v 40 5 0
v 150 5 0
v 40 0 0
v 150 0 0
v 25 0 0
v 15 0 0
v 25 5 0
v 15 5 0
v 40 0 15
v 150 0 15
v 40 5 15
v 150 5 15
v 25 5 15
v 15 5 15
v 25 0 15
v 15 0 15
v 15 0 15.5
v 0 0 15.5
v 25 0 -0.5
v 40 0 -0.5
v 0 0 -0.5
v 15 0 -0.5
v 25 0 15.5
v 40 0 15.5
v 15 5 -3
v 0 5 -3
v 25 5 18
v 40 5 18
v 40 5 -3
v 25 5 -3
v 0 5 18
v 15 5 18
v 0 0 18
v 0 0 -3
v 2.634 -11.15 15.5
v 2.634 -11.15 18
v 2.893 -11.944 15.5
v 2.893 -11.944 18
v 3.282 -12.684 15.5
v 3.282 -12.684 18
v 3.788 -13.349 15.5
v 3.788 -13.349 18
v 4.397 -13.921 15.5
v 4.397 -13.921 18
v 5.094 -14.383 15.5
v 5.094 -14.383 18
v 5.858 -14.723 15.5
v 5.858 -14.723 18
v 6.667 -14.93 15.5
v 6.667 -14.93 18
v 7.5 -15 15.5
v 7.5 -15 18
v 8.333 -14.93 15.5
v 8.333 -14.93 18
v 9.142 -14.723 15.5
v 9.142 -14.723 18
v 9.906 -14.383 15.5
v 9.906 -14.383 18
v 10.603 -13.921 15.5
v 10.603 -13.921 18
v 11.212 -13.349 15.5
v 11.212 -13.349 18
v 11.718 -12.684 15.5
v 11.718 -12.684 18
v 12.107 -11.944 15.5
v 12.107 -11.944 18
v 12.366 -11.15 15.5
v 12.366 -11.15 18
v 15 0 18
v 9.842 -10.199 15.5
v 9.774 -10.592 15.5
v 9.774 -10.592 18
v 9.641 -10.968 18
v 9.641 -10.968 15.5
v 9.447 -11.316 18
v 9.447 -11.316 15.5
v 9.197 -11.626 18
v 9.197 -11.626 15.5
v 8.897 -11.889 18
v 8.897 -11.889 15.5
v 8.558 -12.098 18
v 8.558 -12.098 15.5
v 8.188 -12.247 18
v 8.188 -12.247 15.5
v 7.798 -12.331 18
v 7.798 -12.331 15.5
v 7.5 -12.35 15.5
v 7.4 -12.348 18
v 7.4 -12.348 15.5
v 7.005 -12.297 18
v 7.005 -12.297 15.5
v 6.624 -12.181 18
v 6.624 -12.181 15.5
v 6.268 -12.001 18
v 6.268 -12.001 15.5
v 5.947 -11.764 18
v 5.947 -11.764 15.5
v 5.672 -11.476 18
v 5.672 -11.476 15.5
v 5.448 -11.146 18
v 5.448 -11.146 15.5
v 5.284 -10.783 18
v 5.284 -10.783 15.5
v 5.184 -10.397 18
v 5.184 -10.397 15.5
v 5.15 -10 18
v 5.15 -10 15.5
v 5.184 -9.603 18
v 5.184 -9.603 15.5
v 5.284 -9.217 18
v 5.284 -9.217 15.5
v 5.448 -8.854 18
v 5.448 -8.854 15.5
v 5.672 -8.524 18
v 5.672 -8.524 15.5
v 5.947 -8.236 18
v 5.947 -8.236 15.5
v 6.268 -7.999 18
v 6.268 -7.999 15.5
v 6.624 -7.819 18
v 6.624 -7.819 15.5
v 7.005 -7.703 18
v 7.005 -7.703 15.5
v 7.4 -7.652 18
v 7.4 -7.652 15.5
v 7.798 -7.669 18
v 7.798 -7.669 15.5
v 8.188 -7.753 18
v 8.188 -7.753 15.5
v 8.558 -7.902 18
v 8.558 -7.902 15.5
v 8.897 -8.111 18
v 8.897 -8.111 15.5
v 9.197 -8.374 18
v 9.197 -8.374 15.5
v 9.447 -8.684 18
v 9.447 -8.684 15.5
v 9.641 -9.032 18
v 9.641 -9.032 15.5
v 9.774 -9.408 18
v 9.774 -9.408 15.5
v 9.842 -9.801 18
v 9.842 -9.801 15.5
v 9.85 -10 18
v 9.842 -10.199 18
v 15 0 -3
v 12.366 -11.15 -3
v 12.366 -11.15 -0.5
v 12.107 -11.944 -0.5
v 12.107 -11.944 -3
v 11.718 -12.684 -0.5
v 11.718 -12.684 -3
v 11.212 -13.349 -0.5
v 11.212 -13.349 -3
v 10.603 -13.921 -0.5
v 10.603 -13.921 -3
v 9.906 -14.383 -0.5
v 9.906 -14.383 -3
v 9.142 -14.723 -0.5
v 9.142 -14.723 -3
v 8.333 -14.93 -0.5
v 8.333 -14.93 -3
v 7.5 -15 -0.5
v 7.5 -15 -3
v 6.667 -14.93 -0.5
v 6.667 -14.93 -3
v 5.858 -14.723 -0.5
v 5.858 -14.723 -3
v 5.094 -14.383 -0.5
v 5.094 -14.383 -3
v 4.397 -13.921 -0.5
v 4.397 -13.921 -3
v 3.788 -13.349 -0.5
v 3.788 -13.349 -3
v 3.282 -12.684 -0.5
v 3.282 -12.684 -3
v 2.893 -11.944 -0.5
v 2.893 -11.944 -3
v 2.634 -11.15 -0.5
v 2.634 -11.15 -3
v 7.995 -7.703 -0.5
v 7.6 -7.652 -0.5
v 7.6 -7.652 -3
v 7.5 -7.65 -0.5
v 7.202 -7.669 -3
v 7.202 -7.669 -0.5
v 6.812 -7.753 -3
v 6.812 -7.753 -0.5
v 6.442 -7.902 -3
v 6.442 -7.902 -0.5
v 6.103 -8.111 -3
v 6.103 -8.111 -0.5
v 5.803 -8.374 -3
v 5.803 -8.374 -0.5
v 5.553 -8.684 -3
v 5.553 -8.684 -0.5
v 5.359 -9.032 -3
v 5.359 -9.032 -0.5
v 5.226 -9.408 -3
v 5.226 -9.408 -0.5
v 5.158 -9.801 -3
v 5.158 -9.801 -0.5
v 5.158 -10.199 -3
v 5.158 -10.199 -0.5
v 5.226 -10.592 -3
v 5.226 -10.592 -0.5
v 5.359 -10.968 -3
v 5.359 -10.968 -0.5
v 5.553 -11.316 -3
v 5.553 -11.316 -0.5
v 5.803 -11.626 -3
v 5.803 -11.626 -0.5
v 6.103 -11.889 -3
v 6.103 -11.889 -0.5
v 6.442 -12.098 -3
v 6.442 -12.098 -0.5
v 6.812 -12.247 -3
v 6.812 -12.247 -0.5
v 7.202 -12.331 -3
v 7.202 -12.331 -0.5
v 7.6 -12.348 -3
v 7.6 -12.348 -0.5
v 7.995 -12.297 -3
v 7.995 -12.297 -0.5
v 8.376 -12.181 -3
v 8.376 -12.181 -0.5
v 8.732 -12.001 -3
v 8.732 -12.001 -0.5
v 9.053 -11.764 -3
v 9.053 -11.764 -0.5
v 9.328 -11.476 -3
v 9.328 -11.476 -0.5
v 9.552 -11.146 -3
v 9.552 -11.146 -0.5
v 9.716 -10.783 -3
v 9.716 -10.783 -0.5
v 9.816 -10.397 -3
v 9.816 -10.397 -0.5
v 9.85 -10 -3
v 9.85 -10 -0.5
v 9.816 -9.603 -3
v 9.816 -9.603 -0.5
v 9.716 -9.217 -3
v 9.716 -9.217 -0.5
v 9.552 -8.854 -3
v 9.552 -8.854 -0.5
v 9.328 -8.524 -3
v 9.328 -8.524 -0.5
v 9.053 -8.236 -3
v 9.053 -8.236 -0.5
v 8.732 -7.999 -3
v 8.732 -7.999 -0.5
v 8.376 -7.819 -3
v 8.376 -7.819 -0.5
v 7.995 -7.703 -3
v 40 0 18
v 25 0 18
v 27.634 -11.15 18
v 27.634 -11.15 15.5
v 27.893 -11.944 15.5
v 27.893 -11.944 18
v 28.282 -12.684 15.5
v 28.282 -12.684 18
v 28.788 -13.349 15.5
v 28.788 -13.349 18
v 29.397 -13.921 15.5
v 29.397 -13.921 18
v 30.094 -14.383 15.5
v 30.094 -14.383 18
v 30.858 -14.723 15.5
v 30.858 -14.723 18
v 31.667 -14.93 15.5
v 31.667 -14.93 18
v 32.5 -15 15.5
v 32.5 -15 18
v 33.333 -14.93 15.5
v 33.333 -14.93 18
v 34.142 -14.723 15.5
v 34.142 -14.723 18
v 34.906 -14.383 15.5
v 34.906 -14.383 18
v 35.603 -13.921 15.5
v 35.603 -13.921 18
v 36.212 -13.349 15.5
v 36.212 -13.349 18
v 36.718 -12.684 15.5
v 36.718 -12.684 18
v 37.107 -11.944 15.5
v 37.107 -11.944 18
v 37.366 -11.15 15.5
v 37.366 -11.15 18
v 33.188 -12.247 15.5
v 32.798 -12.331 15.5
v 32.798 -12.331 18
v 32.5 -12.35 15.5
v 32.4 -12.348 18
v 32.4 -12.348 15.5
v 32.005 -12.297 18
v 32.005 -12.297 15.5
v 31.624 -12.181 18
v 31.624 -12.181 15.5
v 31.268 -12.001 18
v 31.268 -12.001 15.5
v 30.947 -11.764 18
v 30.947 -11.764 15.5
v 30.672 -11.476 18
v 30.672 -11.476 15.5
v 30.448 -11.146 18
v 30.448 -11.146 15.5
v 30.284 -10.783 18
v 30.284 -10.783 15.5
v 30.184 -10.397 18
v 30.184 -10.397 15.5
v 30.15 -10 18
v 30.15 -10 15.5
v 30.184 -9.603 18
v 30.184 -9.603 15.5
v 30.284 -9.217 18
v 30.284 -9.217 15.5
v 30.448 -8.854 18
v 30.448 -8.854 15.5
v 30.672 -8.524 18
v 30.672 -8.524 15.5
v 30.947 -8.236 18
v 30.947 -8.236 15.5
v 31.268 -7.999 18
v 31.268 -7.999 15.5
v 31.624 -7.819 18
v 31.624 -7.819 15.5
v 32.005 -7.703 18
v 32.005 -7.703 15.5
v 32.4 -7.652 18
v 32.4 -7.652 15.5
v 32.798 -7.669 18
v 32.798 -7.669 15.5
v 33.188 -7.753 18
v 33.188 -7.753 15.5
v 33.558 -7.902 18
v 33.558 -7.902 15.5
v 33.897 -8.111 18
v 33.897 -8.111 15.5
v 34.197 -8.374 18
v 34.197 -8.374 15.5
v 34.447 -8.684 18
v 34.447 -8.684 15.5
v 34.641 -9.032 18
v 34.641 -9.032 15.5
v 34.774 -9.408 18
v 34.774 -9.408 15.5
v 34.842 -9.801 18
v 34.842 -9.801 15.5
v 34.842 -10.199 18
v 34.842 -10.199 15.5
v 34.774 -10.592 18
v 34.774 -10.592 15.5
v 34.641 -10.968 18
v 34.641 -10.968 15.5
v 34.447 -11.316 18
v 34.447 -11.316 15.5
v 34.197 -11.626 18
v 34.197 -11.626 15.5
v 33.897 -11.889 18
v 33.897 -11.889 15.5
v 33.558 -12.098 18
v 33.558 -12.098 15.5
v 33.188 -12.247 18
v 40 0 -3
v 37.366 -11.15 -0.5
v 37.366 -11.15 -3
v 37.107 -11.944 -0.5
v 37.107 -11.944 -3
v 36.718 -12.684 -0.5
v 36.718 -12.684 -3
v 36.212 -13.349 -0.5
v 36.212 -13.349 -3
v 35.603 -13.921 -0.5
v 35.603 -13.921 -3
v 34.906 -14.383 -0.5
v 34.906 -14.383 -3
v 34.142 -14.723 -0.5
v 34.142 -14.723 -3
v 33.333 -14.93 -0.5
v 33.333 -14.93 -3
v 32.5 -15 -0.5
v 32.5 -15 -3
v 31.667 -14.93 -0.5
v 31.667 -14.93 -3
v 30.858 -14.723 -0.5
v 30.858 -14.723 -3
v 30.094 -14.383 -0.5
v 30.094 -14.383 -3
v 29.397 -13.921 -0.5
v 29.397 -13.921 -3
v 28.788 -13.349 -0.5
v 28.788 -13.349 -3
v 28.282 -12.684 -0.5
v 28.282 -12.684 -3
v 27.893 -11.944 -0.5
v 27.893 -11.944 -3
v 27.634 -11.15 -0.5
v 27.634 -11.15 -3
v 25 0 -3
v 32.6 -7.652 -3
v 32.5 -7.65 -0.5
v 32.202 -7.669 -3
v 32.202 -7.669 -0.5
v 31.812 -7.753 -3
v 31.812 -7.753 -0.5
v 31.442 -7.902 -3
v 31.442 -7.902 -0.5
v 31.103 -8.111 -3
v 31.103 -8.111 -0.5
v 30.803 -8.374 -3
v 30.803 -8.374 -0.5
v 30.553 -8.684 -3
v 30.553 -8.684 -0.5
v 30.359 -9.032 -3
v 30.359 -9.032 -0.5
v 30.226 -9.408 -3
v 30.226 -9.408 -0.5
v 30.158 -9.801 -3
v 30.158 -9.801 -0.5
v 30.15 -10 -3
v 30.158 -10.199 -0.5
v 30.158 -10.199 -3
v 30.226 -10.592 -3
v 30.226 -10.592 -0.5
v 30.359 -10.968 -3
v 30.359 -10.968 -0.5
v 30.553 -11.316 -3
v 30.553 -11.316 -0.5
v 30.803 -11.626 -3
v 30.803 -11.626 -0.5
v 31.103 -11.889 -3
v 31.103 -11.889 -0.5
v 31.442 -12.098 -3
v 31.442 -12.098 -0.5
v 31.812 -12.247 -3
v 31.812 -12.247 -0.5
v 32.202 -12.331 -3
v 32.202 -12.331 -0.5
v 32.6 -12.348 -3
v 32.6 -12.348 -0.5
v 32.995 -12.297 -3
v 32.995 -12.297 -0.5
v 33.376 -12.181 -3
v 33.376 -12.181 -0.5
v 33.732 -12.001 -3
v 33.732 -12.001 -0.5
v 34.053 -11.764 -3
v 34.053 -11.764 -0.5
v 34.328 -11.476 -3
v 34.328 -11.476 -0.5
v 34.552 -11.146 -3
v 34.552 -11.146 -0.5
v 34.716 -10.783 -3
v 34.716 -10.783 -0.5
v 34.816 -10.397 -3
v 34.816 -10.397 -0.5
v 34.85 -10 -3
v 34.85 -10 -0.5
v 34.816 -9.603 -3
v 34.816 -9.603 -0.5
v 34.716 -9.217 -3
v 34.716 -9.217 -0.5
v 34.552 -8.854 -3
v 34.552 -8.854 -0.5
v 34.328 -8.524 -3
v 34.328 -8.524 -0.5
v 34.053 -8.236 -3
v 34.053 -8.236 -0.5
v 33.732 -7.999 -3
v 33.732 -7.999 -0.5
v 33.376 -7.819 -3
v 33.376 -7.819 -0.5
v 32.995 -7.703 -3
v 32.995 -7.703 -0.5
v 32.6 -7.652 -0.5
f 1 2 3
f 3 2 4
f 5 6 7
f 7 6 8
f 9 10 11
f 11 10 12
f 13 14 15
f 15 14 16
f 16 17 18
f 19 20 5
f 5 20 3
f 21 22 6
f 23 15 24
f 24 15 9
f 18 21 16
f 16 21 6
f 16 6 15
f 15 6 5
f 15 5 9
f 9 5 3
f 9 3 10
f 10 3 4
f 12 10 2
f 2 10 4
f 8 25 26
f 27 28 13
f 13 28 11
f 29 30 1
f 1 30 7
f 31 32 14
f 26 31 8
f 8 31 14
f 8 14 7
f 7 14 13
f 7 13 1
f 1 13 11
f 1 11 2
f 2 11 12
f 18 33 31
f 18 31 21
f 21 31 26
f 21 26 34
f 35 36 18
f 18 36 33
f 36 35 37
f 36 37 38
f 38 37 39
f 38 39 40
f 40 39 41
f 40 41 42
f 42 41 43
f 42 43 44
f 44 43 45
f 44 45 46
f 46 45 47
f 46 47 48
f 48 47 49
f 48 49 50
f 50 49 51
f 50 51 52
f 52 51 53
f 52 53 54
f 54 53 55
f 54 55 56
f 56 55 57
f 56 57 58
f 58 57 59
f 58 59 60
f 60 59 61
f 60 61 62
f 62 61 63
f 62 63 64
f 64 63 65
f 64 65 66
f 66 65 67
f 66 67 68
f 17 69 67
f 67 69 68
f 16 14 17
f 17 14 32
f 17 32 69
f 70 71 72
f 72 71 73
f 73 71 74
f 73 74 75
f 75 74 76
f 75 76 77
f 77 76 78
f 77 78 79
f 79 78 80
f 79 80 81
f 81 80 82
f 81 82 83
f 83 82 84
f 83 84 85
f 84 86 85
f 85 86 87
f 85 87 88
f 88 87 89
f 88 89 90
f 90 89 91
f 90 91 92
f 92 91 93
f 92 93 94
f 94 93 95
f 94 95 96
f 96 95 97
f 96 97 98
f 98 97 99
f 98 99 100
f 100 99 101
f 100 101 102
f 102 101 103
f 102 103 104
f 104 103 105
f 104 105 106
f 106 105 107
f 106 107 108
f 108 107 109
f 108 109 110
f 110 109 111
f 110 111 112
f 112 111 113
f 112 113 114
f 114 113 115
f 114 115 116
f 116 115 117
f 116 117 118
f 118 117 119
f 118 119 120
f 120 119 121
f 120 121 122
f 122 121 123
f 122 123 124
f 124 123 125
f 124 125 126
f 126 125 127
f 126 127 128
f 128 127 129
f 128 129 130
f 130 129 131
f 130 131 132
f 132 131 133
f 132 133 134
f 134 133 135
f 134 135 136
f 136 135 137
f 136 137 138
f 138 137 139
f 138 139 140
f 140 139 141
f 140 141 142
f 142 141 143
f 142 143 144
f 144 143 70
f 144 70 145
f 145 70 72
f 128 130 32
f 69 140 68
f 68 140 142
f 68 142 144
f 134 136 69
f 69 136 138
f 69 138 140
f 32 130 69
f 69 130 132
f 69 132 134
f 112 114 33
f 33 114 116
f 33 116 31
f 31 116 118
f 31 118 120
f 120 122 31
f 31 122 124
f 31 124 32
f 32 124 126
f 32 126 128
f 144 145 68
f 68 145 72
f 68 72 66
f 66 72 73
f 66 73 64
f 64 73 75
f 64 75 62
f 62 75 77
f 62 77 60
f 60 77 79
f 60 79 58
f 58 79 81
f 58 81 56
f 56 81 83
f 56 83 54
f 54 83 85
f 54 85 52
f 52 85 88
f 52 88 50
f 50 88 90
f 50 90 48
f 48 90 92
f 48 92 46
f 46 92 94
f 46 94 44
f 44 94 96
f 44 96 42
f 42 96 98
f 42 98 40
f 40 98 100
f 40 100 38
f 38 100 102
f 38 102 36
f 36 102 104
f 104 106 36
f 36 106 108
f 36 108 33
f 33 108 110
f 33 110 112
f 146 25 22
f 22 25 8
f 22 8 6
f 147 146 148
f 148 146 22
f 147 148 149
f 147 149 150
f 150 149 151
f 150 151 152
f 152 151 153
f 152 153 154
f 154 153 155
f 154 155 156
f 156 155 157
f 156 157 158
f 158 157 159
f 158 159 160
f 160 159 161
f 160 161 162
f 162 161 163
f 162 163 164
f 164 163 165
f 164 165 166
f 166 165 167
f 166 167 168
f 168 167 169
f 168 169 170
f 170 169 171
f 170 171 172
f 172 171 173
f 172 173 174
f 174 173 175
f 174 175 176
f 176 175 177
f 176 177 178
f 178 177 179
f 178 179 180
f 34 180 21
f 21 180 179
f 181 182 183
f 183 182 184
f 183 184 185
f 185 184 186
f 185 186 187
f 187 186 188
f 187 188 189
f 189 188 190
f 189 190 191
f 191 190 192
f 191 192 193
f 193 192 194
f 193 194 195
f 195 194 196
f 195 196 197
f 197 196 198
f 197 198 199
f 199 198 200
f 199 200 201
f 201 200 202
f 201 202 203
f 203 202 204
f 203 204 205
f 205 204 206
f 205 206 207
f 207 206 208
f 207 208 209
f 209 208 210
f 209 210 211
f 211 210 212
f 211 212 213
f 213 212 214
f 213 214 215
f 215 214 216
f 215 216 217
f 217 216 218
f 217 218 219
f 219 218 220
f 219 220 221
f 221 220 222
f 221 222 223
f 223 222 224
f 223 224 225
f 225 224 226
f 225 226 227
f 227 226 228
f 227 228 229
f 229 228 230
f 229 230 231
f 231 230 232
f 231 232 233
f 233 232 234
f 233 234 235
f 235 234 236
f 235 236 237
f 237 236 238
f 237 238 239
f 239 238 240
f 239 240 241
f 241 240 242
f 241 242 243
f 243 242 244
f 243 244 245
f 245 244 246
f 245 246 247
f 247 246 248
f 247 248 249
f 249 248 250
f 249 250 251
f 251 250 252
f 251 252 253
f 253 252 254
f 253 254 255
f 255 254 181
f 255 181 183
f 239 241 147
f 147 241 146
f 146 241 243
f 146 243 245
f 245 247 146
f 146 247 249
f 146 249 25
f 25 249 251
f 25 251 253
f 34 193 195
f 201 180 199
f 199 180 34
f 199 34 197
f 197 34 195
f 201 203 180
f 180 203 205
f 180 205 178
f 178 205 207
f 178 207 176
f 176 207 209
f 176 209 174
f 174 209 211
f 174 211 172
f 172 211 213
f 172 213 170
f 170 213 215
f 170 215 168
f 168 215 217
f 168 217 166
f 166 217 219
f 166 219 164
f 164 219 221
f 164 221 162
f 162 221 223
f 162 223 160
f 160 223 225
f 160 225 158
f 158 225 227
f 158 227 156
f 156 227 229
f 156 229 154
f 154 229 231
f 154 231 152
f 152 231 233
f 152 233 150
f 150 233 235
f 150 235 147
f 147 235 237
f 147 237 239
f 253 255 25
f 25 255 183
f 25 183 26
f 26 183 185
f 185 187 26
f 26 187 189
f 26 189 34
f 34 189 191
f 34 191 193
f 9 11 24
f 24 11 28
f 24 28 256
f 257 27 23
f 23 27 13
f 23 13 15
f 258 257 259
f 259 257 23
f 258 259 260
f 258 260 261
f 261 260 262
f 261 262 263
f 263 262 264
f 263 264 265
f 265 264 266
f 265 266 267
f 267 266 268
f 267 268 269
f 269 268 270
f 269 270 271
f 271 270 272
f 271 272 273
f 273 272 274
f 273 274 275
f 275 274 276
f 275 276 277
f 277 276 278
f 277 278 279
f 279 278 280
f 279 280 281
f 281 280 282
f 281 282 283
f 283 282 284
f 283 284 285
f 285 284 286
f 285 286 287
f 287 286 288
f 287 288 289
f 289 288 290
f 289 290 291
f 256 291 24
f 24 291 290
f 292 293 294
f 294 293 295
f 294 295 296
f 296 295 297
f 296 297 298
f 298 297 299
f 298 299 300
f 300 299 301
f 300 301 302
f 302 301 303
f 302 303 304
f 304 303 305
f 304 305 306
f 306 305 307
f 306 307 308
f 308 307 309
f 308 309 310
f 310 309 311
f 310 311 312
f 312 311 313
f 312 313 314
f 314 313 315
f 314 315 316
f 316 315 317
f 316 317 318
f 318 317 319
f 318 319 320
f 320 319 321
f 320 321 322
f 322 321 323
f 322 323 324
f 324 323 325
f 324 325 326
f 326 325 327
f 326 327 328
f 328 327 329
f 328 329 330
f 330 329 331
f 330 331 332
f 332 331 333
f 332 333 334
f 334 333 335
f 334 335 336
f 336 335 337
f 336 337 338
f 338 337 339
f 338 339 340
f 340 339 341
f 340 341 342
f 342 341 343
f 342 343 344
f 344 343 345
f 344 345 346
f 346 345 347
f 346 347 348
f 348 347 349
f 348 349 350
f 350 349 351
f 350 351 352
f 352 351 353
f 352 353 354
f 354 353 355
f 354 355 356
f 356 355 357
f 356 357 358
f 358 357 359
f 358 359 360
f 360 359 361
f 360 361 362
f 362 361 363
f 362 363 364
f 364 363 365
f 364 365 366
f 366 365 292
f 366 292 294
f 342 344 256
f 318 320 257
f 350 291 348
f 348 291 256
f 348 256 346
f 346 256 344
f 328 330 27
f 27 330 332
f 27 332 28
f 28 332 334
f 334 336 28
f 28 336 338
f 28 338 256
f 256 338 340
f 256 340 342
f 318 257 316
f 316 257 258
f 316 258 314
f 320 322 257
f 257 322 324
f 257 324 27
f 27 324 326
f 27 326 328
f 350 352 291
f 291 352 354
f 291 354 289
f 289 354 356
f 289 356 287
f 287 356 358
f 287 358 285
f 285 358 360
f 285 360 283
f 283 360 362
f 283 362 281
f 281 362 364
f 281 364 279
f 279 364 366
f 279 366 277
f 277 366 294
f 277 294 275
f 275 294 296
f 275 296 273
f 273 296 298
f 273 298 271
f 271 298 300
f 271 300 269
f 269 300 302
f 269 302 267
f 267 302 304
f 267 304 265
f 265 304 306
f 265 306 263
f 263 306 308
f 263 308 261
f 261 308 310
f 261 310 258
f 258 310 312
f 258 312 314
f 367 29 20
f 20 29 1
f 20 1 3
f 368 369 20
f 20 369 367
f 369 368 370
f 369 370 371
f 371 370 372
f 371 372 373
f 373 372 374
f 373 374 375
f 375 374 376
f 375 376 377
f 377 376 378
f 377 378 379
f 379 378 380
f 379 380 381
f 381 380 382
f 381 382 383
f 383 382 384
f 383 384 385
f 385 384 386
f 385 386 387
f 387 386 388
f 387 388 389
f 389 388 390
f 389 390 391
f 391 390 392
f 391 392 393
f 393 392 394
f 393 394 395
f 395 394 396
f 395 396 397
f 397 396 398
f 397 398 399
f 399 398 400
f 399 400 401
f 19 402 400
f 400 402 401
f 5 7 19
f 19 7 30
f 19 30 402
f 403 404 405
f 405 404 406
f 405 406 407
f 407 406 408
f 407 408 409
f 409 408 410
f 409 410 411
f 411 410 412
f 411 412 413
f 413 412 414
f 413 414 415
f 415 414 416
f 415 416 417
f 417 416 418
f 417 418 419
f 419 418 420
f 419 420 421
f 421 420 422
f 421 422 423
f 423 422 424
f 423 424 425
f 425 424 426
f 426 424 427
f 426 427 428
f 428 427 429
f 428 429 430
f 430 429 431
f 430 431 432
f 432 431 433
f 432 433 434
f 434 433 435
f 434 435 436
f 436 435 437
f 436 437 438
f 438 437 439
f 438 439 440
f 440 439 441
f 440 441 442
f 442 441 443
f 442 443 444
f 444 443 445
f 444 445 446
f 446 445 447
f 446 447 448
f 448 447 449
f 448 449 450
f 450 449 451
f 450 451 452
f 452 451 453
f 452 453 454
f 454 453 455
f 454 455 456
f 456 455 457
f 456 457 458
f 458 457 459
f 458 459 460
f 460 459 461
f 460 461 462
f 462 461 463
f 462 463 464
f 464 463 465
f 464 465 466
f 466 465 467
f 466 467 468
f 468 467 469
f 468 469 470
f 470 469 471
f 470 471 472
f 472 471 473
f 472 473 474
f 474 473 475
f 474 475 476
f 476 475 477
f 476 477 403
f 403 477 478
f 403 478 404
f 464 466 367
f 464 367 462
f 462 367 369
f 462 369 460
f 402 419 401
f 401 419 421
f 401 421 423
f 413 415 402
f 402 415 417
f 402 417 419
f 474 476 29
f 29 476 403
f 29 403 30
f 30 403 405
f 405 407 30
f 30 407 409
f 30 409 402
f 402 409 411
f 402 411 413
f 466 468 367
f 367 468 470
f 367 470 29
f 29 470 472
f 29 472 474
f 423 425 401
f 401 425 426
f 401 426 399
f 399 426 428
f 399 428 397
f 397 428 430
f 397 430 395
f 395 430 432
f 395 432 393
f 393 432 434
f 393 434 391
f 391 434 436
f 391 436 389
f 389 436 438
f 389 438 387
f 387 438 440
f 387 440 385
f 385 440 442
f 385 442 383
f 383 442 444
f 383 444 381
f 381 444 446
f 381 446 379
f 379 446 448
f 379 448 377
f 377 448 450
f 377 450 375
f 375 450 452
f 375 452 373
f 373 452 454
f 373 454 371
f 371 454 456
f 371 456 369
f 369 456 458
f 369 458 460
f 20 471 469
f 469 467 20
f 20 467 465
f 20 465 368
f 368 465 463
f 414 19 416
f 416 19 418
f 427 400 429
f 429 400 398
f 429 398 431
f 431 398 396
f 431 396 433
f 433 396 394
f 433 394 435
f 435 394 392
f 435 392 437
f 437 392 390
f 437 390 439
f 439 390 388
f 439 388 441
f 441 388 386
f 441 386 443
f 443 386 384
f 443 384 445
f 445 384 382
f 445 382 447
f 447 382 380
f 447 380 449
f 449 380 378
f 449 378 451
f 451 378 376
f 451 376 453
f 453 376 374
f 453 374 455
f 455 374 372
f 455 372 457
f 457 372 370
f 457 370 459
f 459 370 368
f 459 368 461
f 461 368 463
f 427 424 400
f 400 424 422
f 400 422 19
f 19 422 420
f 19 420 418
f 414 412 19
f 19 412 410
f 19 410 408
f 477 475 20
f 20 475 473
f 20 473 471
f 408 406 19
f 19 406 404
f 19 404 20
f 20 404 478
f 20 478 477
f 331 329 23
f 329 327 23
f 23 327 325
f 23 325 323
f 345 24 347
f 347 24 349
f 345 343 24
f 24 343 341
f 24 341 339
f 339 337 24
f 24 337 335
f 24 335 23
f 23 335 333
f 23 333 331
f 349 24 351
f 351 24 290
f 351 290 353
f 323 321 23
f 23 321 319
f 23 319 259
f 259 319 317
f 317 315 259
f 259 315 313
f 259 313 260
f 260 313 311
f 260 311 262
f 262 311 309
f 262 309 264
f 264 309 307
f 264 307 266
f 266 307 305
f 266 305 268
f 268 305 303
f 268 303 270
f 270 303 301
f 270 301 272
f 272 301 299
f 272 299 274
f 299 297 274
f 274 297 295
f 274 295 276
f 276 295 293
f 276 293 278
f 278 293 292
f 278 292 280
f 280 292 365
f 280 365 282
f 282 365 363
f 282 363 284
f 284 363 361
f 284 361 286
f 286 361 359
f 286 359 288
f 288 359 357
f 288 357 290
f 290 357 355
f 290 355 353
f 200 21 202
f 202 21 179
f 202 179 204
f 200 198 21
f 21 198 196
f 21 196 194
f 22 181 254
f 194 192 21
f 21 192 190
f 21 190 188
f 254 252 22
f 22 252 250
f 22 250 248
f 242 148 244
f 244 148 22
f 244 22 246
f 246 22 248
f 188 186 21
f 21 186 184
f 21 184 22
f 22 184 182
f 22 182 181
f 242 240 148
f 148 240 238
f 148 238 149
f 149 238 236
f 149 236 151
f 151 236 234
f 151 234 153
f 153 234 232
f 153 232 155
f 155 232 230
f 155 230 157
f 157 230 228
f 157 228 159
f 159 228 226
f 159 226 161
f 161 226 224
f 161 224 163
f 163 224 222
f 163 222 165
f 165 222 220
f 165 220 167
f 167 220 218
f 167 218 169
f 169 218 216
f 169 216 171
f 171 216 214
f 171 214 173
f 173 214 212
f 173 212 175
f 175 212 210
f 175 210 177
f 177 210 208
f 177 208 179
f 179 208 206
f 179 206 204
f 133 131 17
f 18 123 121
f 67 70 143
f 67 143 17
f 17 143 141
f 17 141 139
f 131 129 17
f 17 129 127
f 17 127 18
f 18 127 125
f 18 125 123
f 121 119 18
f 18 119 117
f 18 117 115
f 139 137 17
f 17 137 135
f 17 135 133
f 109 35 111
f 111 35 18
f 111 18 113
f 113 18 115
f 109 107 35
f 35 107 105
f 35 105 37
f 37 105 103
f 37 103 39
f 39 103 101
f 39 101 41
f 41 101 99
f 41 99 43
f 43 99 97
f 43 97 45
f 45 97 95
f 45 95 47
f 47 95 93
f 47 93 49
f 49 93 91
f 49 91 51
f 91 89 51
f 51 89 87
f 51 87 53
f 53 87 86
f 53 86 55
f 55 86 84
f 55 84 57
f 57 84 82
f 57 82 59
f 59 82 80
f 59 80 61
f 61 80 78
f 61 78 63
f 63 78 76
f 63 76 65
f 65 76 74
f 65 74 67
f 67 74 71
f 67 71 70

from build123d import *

# Parameters (mm, degrees)
SKETCH_1_W               = 150
SKETCH_1_H               = 5
EXTRUDE_1_DEPTH          = 15
SKETCH_2_W               = 15
SKETCH_2_H               = 5
SKETCH_2_R               = 2.35
EXTRUDE_2_DEPTH          = 3
MIRROR_2_COPY_1_SKETCH_W = 15
MIRROR_2_COPY_1_SKETCH_H = 5
MIRROR_2_COPY_1_SKETCH_R = 2.35
MIRROR_2_COPY_1_DEPTH    = 3
SKETCH_3_W               = 16
SKETCH_3_H               = 20
CUT_EXTRUDE_1_DEPTH      = 53


with BuildPart() as part:
    # 草图1 → 凸台-拉伸1 (new body)
    with BuildSketch(Plane.XY):
        with Locations((75, 2.5)):
            Rectangle(SKETCH_1_W, SKETCH_1_H)
    extrude(amount=EXTRUDE_1_DEPTH)

    # 草图2 → 凸台-拉伸2 (add)
    # profile 1 of 4: a face of its own
    with BuildSketch(Plane.XY.offset(15)):
        with Locations((7.5, 2.5)):
            Rectangle(SKETCH_2_W, SKETCH_2_H)
    # profile 2 of 4: a face of its own
    with BuildSketch(Plane.XY.offset(15)):
        with BuildLine():
            Line((15, 0), (0, 0))
            Line((0, 0), (2.633939444, -11.149545417))
            ThreePointArc((2.633939444, -11.149545417), (6.921338951, -5.033597742), (12.5, -10))
            ThreePointArc((12.5, -10), (12.466402258, -10.578661049), (12.366060556, -11.149545417))
            Line((12.366060556, -11.149545417), (15, 0))
        make_face()
    # profile 3 of 4: a face of its own
    with BuildSketch(Plane.XY.offset(15)):
        with BuildLine():
            ThreePointArc((12.5, -10), (6.921338951, -5.033597742), (2.633939444, -11.149545417))
            ThreePointArc((2.633939444, -11.149545417), (7.5, -15), (12.366060556, -11.149545417))
            ThreePointArc((12.366060556, -11.149545417), (12.466402258, -10.578661049), (12.5, -10))
        make_face()
        with Locations((7.5, -10)):
            Circle(SKETCH_2_R, mode=Mode.SUBTRACT)
    # profile 4 of 4: a face of its own
    with BuildSketch(Plane.XY.offset(15)):
        with BuildLine():
            ThreePointArc((12.5, -10), (6.921338951, -5.033597742), (2.633939444, -11.149545417))
            ThreePointArc((2.633939444, -11.149545417), (7.5, -15), (12.366060556, -11.149545417))
            ThreePointArc((12.366060556, -11.149545417), (12.466402258, -10.578661049), (12.5, -10))
        make_face()
        with Locations((7.5, -10)):
            Circle(SKETCH_2_R, mode=Mode.SUBTRACT)
    extrude_2 = extrude(amount=EXTRUDE_2_DEPTH)

    # 镜向1: 凸台-拉伸2 across plane
    add(extrude_2.mirror(Plane(origin=(0, 0, 7.5), x_dir=(1, 0, 0), z_dir=(0, 0, -1))))

    # 镜向2: 凸台-拉伸2 across plane
    add(extrude_2.mirror(Plane.ZY.offset(-20)))

    # 镜向2 copy 1 sketch → 镜向2 copy 1 (add)
    # profile 1 of 4: a face of its own
    with BuildSketch(Plane(origin=(40, 0, 0), x_dir=(-1, 0, 0), z_dir=(0, 0, -1))):
        with Locations((7.5, 2.5)):
            Rectangle(MIRROR_2_COPY_1_SKETCH_W, MIRROR_2_COPY_1_SKETCH_H)
    # profile 2 of 4: a face of its own
    with BuildSketch(Plane(origin=(40, 0, 0), x_dir=(-1, 0, 0), z_dir=(0, 0, -1))):
        with BuildLine():
            Line((15, 0), (0, 0))
            Line((0, 0), (2.633939444, -11.149545417))
            ThreePointArc((2.633939444, -11.149545417), (6.921338951, -5.033597742), (12.5, -10))
            ThreePointArc((12.5, -10), (12.466402258, -10.578661049), (12.366060556, -11.149545417))
            Line((12.366060556, -11.149545417), (15, 0))
        make_face()
    # profile 3 of 4: a face of its own
    with BuildSketch(Plane(origin=(40, 0, 0), x_dir=(-1, 0, 0), z_dir=(0, 0, -1))):
        with BuildLine():
            ThreePointArc((12.5, -10), (6.921338951, -5.033597742), (2.633939444, -11.149545417))
            ThreePointArc((2.633939444, -11.149545417), (7.5, -15), (12.366060556, -11.149545417))
            ThreePointArc((12.366060556, -11.149545417), (12.466402258, -10.578661049), (12.5, -10))
        make_face()
        with Locations((7.5, -10)):
            Circle(MIRROR_2_COPY_1_SKETCH_R, mode=Mode.SUBTRACT)
    # profile 4 of 4: a face of its own
    with BuildSketch(Plane(origin=(40, 0, 0), x_dir=(-1, 0, 0), z_dir=(0, 0, -1))):
        with BuildLine():
            ThreePointArc((12.5, -10), (6.921338951, -5.033597742), (2.633939444, -11.149545417))
            ThreePointArc((2.633939444, -11.149545417), (7.5, -15), (12.366060556, -11.149545417))
            ThreePointArc((12.366060556, -11.149545417), (12.466402258, -10.578661049), (12.5, -10))
        make_face()
        with Locations((7.5, -10)):
            Circle(MIRROR_2_COPY_1_SKETCH_R, mode=Mode.SUBTRACT)
    extrude(amount=MIRROR_2_COPY_1_DEPTH)

    # 草图3 → 切除-拉伸1 (cut)
    with BuildSketch(Plane.ZY):
        with Locations((7.5, -10)):
            Rectangle(SKETCH_3_W, SKETCH_3_H)
    extrude(amount=-CUT_EXTRUDE_1_DEPTH, mode=Mode.SUBTRACT)


solid = part.part
